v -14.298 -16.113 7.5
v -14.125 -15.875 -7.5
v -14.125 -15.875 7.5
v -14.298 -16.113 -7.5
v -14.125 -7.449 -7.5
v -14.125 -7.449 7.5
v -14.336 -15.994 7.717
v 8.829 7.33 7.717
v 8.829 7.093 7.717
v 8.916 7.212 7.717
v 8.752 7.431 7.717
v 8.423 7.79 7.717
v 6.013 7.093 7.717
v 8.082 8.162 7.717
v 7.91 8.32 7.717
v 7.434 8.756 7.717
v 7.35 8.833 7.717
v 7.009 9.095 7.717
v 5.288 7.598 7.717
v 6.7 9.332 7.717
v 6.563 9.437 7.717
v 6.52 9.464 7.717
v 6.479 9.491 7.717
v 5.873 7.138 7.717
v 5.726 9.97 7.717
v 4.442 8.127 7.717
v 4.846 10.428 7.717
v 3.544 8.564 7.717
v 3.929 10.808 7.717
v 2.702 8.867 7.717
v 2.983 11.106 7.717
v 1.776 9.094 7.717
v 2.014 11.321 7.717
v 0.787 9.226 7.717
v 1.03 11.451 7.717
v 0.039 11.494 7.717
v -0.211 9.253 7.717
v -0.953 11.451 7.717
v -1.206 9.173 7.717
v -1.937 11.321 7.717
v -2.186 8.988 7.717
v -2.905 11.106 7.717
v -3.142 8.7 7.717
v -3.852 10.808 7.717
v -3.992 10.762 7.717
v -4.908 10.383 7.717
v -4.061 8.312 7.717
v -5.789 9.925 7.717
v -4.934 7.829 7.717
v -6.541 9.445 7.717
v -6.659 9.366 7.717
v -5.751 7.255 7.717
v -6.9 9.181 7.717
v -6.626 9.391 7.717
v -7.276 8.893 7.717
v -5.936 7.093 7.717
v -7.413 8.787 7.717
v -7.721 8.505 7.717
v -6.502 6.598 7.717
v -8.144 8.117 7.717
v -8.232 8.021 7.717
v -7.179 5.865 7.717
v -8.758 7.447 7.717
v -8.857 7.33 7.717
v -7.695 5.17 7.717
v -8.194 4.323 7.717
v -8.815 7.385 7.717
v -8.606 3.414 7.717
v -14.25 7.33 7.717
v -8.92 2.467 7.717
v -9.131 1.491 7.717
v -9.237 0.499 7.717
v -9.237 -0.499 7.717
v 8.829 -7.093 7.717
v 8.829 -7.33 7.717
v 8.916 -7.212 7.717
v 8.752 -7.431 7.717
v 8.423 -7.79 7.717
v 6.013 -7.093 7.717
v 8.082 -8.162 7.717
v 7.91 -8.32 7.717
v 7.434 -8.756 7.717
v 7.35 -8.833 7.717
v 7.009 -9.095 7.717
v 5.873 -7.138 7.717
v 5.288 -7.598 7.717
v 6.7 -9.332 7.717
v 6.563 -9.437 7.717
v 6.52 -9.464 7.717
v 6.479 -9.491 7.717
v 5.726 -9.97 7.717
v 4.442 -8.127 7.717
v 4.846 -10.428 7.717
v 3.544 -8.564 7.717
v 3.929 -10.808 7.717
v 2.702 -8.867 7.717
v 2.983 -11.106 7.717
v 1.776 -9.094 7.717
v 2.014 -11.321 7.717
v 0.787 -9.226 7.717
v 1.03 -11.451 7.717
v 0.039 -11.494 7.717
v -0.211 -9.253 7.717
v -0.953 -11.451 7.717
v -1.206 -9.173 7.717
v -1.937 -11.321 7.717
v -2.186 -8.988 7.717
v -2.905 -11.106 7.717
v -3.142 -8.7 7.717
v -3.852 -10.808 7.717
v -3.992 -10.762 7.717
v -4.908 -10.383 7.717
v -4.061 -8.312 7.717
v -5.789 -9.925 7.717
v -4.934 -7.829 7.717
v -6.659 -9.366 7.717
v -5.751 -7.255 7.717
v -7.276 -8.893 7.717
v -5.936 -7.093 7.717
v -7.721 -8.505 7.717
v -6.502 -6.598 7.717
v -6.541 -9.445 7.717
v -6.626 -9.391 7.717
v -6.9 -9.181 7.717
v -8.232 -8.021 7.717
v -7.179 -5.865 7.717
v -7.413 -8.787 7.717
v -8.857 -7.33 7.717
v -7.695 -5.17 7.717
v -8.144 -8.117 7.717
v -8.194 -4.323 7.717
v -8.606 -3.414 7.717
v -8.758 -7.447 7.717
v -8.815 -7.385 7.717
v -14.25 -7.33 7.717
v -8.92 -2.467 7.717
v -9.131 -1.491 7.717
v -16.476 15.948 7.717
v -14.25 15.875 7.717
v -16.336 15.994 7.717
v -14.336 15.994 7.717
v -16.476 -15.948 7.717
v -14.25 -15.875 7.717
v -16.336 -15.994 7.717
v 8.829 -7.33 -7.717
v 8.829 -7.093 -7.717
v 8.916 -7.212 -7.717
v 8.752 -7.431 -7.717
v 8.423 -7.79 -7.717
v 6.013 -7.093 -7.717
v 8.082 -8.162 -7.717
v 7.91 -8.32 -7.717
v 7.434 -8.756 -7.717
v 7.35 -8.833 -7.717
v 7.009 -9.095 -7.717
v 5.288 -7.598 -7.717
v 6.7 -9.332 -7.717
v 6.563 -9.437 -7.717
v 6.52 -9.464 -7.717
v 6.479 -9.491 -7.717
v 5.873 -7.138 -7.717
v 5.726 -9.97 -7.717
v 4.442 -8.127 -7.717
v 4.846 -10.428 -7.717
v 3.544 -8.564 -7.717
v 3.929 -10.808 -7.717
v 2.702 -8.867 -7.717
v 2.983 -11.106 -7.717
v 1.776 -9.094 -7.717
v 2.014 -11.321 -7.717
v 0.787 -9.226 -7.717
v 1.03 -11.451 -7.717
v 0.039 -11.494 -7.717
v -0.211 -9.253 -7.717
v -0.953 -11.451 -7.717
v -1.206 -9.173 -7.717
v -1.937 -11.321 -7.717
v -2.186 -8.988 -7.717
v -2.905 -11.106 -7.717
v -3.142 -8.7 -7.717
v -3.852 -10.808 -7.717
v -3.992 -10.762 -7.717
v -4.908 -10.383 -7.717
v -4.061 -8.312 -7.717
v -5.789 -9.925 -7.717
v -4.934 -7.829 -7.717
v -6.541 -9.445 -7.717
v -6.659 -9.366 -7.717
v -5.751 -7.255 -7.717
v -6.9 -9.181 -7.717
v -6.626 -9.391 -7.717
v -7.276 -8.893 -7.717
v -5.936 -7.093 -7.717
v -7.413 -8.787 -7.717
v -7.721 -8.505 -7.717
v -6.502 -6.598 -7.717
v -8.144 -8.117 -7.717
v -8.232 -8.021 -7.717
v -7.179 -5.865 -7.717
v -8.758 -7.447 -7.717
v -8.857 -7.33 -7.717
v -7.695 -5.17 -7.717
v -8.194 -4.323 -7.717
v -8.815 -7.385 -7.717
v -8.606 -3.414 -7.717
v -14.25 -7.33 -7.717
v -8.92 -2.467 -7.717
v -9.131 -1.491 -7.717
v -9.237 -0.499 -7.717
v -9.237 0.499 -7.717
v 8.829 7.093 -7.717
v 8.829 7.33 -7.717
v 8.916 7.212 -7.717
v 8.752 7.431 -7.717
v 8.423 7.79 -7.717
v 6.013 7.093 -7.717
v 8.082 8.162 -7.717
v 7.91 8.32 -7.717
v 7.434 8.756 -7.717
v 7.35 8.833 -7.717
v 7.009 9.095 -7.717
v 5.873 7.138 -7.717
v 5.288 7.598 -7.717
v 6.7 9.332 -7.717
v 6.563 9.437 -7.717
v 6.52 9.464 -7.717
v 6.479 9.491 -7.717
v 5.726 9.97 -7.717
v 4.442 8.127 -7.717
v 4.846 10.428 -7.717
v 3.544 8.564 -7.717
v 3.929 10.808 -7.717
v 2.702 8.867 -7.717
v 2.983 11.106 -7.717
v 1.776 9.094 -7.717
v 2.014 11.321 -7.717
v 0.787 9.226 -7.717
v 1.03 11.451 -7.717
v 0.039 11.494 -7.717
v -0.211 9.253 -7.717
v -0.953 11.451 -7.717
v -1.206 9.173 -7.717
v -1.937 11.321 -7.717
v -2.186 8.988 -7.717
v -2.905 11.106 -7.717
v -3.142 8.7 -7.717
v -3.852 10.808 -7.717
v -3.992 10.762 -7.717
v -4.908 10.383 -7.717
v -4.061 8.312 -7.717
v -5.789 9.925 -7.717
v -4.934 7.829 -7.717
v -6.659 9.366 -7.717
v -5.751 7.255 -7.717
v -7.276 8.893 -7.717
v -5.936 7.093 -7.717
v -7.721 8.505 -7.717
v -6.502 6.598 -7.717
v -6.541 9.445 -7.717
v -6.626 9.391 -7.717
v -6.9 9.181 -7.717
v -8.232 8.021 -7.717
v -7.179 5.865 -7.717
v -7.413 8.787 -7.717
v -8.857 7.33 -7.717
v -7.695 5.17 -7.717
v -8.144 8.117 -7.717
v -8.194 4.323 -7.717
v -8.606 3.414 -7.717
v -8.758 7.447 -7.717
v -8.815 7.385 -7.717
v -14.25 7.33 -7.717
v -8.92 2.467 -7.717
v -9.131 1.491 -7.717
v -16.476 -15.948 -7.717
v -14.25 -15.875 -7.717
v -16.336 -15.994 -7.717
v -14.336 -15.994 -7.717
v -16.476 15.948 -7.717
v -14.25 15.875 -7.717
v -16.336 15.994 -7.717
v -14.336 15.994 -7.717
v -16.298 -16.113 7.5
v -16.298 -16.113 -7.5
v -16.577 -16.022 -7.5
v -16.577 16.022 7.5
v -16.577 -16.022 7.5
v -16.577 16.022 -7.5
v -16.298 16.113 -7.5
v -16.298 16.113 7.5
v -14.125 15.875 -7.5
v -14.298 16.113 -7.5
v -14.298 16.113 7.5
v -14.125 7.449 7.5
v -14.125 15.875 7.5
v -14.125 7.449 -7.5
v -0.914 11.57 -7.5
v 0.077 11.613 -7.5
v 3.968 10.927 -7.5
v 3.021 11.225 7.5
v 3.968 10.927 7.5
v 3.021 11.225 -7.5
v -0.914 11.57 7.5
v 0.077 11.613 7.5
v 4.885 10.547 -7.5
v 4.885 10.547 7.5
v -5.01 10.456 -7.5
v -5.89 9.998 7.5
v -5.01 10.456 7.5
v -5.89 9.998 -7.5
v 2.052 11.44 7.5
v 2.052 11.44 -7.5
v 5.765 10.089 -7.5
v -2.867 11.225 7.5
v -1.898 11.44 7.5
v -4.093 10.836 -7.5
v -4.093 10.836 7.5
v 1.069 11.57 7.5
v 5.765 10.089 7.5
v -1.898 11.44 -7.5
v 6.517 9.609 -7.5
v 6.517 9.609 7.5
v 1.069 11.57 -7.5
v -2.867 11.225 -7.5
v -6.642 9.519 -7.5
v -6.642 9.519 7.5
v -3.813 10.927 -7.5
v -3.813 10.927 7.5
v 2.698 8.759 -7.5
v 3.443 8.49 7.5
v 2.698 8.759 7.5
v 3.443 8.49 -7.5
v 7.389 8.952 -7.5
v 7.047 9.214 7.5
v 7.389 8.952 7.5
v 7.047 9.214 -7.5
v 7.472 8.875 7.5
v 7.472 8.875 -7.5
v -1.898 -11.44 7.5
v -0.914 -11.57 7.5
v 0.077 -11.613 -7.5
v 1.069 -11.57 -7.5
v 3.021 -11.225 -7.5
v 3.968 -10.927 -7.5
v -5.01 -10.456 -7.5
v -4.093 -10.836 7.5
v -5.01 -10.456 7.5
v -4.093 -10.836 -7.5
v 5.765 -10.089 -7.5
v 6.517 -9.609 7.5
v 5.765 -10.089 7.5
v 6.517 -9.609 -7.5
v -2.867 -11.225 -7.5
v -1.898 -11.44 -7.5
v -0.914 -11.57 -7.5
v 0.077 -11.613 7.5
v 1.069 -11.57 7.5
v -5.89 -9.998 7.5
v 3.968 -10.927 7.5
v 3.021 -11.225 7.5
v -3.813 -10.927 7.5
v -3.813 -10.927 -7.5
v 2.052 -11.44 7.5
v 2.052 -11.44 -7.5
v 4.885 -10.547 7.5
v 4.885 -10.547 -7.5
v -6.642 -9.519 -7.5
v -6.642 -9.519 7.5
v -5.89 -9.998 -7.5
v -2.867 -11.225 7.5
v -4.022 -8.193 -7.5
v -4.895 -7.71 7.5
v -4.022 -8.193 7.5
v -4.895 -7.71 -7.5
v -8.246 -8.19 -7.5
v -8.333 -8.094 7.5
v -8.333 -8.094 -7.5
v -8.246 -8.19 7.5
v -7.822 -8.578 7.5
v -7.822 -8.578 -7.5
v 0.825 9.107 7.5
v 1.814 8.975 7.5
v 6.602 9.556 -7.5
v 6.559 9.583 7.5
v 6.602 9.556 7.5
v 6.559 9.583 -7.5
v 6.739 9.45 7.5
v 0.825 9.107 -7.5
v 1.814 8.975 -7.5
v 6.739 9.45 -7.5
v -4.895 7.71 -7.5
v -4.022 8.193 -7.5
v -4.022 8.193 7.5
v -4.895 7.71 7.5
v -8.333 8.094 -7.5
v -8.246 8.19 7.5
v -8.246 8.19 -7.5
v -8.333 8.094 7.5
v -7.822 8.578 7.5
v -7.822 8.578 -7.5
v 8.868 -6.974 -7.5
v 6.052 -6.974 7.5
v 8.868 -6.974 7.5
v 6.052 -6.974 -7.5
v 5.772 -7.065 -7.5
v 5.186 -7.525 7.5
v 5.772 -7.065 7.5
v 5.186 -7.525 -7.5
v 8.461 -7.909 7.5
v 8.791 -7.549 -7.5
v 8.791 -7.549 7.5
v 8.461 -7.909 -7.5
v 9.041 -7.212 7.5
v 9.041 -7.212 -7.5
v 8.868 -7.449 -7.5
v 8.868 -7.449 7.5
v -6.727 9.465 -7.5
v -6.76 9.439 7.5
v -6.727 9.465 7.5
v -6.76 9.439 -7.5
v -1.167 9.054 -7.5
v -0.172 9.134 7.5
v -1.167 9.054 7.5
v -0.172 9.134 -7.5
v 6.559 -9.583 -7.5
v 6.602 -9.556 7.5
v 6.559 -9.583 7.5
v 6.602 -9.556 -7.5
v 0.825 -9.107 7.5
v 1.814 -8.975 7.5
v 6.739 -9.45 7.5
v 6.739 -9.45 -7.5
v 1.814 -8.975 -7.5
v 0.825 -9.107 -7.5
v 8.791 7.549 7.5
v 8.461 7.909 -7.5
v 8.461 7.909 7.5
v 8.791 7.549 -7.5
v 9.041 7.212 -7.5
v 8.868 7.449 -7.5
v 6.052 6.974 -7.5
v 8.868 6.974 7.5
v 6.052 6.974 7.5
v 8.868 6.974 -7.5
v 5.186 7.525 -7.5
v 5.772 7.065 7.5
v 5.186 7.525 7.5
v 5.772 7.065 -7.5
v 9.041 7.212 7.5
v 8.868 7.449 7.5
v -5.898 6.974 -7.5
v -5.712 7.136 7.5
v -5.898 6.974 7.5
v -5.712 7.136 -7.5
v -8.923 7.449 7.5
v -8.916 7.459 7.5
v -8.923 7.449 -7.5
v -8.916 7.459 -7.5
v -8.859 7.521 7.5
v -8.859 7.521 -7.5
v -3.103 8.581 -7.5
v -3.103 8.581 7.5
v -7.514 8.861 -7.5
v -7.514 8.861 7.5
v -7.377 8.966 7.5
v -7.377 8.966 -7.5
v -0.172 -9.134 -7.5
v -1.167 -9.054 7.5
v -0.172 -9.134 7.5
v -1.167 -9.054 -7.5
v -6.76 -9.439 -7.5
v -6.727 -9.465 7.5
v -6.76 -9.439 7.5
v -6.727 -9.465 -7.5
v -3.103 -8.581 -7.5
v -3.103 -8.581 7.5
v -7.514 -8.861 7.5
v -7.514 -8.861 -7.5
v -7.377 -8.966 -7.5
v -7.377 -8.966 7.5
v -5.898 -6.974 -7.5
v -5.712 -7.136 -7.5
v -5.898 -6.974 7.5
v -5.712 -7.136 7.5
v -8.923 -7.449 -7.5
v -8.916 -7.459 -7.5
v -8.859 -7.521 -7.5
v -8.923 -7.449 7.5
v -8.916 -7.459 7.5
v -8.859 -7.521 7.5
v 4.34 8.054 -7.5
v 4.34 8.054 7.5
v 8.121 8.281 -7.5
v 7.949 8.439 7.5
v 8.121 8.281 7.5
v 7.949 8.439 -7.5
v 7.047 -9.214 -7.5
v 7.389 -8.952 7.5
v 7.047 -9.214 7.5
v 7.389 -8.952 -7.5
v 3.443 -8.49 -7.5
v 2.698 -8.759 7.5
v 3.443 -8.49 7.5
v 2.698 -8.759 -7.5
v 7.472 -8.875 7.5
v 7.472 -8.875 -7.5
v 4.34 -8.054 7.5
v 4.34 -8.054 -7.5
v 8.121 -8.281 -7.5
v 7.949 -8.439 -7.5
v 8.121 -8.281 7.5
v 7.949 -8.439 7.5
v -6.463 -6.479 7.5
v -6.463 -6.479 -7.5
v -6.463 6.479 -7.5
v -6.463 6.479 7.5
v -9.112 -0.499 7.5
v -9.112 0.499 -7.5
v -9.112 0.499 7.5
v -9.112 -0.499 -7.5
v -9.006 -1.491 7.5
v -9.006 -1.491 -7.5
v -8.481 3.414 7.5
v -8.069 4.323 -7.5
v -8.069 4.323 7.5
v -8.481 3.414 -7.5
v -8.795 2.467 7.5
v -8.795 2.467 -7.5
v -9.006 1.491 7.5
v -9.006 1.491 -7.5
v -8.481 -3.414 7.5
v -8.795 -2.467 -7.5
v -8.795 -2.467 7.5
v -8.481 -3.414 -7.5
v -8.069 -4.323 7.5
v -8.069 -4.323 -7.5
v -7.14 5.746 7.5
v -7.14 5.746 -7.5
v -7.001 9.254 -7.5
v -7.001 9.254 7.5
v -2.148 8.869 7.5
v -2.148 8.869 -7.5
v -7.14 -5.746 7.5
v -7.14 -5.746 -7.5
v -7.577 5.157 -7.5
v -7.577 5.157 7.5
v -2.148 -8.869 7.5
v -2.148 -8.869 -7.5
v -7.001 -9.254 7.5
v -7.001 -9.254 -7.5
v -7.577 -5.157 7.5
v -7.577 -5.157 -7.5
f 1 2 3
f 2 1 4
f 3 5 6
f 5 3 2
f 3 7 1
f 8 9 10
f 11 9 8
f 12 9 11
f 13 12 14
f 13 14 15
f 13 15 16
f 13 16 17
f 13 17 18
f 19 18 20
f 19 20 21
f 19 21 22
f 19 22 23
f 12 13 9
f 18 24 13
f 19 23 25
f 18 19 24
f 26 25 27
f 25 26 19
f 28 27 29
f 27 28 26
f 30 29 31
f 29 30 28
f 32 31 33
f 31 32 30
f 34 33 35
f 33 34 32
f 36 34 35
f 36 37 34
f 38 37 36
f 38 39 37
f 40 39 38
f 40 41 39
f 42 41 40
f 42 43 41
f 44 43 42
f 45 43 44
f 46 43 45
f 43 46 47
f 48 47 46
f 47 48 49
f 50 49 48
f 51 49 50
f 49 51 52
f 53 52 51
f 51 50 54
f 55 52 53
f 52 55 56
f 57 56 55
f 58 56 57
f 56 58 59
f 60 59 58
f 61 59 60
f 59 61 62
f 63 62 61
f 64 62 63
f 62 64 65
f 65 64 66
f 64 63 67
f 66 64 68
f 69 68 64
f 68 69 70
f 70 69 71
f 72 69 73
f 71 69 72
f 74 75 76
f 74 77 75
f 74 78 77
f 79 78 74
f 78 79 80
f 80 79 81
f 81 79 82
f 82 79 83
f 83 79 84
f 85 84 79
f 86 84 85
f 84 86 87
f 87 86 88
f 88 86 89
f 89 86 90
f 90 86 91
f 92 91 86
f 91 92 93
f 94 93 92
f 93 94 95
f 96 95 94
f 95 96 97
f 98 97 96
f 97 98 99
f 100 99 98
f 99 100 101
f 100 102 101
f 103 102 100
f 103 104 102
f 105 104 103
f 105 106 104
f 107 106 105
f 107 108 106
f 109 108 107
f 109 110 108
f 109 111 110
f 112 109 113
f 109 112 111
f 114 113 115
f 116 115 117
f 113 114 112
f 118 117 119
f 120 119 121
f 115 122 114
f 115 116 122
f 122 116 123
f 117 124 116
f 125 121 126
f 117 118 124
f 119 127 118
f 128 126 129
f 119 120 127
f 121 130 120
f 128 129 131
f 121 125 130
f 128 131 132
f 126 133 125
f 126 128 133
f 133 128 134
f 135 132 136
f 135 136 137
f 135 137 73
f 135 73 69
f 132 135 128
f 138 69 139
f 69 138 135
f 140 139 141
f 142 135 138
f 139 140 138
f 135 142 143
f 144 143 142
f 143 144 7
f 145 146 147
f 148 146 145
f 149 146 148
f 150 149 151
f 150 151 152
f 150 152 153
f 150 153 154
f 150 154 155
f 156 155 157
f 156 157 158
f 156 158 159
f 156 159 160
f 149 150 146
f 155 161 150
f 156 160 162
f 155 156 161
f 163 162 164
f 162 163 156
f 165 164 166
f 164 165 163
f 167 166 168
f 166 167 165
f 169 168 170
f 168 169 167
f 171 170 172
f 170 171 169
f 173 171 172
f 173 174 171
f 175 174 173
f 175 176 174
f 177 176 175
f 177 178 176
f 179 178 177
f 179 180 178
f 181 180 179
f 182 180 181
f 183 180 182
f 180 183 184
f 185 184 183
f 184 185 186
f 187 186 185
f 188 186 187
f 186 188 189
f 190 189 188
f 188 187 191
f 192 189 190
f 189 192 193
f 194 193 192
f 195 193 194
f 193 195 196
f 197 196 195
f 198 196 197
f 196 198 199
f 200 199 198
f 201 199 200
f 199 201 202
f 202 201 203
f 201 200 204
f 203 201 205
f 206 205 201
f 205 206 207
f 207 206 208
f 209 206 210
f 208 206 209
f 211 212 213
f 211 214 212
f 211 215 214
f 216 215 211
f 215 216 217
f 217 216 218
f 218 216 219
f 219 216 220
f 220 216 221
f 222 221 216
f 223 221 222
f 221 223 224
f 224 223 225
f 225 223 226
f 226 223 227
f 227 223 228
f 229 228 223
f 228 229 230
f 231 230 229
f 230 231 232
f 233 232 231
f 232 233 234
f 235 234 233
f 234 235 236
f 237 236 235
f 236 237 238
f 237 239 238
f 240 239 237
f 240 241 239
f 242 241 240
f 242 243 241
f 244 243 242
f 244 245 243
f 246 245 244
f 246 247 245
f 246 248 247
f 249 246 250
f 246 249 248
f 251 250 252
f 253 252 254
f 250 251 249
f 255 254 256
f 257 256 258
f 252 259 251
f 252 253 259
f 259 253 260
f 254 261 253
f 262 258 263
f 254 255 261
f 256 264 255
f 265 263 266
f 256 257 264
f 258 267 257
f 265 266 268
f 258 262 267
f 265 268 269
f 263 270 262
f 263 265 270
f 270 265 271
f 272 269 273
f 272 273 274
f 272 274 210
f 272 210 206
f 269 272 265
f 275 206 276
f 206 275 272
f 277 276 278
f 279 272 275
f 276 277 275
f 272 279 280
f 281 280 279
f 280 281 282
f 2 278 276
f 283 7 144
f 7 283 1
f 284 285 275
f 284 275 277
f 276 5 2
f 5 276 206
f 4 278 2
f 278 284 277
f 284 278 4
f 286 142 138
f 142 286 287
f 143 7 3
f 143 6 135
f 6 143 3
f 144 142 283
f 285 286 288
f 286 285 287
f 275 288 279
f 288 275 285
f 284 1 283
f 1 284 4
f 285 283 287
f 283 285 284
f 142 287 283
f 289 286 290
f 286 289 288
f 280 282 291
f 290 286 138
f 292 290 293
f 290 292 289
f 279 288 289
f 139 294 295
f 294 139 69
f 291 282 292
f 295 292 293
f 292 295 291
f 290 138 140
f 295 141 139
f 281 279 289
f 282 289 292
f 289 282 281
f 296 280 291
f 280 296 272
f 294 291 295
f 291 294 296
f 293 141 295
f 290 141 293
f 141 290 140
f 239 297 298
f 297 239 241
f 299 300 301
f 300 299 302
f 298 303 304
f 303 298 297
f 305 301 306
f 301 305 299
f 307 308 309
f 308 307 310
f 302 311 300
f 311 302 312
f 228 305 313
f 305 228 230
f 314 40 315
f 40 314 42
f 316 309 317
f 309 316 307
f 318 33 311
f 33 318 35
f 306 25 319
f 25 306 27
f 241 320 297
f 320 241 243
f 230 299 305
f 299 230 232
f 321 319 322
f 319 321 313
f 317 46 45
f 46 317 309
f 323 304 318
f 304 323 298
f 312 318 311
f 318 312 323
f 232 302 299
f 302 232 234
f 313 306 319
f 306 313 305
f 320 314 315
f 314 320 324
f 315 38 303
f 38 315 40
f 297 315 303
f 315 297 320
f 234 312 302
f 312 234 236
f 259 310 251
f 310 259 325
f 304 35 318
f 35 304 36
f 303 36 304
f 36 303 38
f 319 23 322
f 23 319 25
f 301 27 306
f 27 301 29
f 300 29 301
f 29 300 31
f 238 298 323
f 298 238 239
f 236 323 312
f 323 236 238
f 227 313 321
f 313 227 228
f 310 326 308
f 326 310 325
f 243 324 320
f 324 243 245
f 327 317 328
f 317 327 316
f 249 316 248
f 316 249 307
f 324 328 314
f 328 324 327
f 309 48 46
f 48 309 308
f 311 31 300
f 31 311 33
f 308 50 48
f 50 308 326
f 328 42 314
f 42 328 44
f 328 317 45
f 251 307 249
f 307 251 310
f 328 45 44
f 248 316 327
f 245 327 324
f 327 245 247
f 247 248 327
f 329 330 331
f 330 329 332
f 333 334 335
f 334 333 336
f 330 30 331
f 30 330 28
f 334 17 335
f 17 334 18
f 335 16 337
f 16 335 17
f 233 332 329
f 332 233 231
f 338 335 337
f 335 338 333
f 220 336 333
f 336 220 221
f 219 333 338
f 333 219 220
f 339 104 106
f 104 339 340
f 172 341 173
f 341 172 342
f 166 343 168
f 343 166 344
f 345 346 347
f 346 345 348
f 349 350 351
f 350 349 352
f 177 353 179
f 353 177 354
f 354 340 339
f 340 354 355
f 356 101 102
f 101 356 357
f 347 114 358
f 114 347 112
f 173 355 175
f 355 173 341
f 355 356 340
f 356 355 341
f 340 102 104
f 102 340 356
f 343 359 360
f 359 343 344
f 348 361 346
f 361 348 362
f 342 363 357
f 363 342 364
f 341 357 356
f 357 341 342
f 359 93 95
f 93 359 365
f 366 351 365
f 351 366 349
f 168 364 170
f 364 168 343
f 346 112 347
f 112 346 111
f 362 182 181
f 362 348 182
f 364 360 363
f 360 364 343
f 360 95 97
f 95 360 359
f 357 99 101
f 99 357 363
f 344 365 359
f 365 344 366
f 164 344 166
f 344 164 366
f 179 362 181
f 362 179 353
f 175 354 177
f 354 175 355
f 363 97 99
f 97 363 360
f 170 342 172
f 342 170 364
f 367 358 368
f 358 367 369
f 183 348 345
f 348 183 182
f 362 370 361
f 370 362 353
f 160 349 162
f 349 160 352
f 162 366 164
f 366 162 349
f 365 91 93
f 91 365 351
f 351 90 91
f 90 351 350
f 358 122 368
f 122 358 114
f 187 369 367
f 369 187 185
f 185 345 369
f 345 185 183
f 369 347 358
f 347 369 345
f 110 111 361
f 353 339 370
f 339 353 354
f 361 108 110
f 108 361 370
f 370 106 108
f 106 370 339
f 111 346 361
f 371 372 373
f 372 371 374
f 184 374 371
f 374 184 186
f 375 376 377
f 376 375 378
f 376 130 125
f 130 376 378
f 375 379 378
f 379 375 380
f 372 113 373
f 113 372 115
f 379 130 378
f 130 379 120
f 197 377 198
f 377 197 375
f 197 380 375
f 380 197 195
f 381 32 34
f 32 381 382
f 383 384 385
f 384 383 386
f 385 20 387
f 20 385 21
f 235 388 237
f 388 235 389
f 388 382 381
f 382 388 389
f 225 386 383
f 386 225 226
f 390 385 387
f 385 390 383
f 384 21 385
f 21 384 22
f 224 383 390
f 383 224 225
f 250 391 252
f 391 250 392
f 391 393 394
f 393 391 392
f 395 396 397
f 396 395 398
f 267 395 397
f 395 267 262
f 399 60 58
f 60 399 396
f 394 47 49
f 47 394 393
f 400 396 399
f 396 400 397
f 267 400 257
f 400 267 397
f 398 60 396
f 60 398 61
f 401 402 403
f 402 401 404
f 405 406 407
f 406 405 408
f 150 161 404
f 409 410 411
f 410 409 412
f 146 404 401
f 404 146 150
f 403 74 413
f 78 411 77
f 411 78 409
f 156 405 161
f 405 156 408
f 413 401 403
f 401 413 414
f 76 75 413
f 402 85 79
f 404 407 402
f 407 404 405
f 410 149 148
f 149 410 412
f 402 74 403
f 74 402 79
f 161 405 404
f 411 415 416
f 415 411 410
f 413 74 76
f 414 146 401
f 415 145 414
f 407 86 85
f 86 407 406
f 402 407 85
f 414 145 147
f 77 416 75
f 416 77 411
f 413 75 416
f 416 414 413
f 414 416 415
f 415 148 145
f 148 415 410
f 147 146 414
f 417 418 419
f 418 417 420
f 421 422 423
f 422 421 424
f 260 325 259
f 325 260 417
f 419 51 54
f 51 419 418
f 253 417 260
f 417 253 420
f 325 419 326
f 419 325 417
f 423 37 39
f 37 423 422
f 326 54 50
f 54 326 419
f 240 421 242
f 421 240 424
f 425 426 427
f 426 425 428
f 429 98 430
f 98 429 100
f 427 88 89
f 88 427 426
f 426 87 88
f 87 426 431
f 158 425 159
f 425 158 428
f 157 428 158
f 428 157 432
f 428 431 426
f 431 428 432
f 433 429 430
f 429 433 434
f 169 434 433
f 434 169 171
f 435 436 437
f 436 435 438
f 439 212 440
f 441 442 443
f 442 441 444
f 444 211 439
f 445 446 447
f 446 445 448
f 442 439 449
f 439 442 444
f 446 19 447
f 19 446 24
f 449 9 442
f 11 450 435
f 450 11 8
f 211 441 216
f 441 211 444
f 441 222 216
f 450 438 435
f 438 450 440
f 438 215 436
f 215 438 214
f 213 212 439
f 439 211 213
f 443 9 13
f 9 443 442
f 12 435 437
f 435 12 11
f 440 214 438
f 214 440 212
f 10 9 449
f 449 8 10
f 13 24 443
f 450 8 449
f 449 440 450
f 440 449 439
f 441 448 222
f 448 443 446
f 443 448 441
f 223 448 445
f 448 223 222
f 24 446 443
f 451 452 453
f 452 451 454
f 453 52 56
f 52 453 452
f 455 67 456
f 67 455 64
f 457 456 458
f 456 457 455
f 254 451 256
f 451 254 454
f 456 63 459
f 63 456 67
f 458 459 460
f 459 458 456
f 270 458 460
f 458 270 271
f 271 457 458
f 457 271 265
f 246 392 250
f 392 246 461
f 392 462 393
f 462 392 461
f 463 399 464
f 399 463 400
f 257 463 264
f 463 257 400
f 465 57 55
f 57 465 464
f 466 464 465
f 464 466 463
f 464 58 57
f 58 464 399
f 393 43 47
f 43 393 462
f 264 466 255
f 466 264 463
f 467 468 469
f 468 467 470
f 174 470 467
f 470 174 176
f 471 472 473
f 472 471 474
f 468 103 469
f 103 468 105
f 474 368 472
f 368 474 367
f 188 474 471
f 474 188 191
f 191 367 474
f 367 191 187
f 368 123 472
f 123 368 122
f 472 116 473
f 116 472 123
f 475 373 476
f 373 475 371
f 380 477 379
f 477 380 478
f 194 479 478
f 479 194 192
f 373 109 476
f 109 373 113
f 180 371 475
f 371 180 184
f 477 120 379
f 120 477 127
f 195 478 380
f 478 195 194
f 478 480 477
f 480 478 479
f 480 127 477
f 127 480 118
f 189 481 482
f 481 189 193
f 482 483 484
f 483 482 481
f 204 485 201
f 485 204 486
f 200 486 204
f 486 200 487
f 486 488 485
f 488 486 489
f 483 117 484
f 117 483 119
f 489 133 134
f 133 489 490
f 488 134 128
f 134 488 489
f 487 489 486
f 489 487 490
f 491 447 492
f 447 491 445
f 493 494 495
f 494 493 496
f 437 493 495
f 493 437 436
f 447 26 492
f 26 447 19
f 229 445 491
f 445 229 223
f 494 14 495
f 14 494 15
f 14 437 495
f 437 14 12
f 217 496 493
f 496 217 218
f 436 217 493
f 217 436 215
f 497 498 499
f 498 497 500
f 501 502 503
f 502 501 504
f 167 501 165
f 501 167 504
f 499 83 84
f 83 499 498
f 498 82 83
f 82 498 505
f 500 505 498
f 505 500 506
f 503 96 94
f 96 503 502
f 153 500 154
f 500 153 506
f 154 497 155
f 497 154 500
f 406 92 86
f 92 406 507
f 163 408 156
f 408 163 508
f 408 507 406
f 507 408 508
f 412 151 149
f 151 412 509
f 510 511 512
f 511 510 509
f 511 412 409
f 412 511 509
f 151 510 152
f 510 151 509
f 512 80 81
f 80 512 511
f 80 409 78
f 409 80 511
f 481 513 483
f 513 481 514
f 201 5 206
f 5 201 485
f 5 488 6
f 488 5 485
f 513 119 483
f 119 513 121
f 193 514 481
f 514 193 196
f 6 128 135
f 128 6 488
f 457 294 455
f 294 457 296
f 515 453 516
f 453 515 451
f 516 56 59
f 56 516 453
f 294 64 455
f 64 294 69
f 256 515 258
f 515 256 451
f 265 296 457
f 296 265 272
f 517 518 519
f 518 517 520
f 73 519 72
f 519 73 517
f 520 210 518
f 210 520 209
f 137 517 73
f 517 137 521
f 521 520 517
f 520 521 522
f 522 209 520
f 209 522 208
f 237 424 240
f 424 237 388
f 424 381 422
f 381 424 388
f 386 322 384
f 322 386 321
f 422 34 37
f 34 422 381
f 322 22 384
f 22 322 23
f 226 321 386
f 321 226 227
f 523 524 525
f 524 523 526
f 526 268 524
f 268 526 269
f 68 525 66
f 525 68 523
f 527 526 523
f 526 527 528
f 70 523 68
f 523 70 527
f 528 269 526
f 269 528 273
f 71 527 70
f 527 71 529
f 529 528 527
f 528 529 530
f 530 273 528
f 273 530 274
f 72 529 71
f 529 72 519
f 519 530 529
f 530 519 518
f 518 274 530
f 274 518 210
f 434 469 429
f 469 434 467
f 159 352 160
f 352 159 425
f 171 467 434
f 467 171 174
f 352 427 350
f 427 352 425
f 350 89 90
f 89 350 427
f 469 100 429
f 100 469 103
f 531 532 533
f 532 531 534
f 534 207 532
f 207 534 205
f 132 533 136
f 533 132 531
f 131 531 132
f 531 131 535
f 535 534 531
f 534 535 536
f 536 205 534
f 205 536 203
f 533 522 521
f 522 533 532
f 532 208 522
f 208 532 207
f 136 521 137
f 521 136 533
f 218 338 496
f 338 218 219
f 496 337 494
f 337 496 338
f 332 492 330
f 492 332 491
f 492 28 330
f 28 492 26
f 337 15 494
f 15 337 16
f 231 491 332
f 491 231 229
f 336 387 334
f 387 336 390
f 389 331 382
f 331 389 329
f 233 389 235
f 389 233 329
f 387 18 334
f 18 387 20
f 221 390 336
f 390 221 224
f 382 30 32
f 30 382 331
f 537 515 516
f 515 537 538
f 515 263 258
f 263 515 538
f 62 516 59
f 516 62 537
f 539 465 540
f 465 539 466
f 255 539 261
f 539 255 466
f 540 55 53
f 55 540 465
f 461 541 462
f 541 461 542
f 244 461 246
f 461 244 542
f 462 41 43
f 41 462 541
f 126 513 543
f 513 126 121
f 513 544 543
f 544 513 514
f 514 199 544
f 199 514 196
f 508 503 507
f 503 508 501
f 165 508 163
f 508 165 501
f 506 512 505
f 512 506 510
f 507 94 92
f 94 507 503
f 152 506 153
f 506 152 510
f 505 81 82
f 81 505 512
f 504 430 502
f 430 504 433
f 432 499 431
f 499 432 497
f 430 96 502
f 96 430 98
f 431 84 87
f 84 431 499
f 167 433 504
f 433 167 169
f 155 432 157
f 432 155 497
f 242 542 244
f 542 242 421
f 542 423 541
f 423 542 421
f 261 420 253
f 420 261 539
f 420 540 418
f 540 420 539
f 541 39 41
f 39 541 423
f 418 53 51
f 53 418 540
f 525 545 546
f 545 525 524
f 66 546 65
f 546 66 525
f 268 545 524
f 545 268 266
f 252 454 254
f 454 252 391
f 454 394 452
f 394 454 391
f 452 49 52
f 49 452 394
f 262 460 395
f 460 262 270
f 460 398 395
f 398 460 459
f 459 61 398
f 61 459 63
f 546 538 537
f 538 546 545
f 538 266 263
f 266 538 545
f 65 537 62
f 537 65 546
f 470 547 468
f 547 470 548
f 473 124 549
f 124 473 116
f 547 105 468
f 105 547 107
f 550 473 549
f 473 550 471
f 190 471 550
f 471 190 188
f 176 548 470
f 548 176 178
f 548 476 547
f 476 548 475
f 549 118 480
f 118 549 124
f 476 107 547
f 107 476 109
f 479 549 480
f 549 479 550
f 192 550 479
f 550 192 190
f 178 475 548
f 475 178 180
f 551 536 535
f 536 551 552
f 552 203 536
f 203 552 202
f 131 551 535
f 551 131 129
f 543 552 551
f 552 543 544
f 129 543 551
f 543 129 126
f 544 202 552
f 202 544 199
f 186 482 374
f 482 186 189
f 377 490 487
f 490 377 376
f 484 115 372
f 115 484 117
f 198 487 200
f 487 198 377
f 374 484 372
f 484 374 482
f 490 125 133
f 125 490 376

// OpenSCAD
hose_diameter = 18.75;

bracket_thickness = 15; 
wall_bracket_thickness = 2;

ring_thickness = 2;


zip_tie_width = 2;
zip_tie_thickness = 1;

standoff_height = 5; //from OD of ring

hole_size = 3;

// defaults: $fa=12, $fs=2
// $fn=50;
$fs = 1;
$fa = 2;



module cutout() {   
    cylinder(d=hose_diameter,h=bracket_thickness,center=true);
    translate([hose_diameter/2,0,0]) cube([hose_diameter/1.3,hose_diameter/1.3,bracket_thickness],center=true);
}

module bracket() {
    translate([(-(hose_diameter+(2*ring_thickness))/2)-standoff_height+wall_bracket_thickness/2,0,0]) {
        difference() {
            cube([wall_bracket_thickness,hose_diameter+ring_thickness*2+hole_size*3,bracket_thickness],center=true);
            //holes();
        }
    }    
}

module standoff() {
    //translate([-hose_diameter/2,0,0]) cube([standoff_height*2,hose_diameter/1.3,bracket_thickness],center=true);    
    translate([-hose_diameter/2-ring_thickness-standoff_height/2,0,0]) cube([standoff_height,hose_diameter/1.3,bracket_thickness],center=true);
    color("blue") cube([hose_diameter+ring_thickness*2,hose_diameter/1.3,bracket_thickness],center=true);
}

module zip_tie_slot() {
    difference() {
        union() {
            cylinder(d=hose_diameter+(2*ring_thickness),h=zip_tie_width,center=true);
            cube([hose_diameter+(2*ring_thickness)+zip_tie_thickness*2,hose_diameter+(2*ring_thickness),zip_tie_width],center=true);
        }
        cylinder(d=hose_diameter+(2*ring_thickness)-(2*zip_tie_thickness),h=zip_tie_width,center=true);        
    }
    
}

module ring() {   
    cylinder(d=hose_diameter+(2*ring_thickness),h=bracket_thickness,center=true);    
}

module hole() {
    rotate([0,90,0]) cylinder(d=hole_size,h=wall_bracket_thickness+1,center=true);
}

module holes() {
    distance = (hose_diameter+ring_thickness*2)/2+hole_size/2;
    translate([0,-distance,0]) hole();
    translate([0,distance,0]) hole();
}

module clamp() {
difference() {
    union() {
        ring();
        standoff();
        bracket();
    }
    //zip_tie_slot();
    cutout();
    
}
}

module main() {
  minkowski() {
    sphere(r=0.25);
    clamp();
  } 
}

main();
